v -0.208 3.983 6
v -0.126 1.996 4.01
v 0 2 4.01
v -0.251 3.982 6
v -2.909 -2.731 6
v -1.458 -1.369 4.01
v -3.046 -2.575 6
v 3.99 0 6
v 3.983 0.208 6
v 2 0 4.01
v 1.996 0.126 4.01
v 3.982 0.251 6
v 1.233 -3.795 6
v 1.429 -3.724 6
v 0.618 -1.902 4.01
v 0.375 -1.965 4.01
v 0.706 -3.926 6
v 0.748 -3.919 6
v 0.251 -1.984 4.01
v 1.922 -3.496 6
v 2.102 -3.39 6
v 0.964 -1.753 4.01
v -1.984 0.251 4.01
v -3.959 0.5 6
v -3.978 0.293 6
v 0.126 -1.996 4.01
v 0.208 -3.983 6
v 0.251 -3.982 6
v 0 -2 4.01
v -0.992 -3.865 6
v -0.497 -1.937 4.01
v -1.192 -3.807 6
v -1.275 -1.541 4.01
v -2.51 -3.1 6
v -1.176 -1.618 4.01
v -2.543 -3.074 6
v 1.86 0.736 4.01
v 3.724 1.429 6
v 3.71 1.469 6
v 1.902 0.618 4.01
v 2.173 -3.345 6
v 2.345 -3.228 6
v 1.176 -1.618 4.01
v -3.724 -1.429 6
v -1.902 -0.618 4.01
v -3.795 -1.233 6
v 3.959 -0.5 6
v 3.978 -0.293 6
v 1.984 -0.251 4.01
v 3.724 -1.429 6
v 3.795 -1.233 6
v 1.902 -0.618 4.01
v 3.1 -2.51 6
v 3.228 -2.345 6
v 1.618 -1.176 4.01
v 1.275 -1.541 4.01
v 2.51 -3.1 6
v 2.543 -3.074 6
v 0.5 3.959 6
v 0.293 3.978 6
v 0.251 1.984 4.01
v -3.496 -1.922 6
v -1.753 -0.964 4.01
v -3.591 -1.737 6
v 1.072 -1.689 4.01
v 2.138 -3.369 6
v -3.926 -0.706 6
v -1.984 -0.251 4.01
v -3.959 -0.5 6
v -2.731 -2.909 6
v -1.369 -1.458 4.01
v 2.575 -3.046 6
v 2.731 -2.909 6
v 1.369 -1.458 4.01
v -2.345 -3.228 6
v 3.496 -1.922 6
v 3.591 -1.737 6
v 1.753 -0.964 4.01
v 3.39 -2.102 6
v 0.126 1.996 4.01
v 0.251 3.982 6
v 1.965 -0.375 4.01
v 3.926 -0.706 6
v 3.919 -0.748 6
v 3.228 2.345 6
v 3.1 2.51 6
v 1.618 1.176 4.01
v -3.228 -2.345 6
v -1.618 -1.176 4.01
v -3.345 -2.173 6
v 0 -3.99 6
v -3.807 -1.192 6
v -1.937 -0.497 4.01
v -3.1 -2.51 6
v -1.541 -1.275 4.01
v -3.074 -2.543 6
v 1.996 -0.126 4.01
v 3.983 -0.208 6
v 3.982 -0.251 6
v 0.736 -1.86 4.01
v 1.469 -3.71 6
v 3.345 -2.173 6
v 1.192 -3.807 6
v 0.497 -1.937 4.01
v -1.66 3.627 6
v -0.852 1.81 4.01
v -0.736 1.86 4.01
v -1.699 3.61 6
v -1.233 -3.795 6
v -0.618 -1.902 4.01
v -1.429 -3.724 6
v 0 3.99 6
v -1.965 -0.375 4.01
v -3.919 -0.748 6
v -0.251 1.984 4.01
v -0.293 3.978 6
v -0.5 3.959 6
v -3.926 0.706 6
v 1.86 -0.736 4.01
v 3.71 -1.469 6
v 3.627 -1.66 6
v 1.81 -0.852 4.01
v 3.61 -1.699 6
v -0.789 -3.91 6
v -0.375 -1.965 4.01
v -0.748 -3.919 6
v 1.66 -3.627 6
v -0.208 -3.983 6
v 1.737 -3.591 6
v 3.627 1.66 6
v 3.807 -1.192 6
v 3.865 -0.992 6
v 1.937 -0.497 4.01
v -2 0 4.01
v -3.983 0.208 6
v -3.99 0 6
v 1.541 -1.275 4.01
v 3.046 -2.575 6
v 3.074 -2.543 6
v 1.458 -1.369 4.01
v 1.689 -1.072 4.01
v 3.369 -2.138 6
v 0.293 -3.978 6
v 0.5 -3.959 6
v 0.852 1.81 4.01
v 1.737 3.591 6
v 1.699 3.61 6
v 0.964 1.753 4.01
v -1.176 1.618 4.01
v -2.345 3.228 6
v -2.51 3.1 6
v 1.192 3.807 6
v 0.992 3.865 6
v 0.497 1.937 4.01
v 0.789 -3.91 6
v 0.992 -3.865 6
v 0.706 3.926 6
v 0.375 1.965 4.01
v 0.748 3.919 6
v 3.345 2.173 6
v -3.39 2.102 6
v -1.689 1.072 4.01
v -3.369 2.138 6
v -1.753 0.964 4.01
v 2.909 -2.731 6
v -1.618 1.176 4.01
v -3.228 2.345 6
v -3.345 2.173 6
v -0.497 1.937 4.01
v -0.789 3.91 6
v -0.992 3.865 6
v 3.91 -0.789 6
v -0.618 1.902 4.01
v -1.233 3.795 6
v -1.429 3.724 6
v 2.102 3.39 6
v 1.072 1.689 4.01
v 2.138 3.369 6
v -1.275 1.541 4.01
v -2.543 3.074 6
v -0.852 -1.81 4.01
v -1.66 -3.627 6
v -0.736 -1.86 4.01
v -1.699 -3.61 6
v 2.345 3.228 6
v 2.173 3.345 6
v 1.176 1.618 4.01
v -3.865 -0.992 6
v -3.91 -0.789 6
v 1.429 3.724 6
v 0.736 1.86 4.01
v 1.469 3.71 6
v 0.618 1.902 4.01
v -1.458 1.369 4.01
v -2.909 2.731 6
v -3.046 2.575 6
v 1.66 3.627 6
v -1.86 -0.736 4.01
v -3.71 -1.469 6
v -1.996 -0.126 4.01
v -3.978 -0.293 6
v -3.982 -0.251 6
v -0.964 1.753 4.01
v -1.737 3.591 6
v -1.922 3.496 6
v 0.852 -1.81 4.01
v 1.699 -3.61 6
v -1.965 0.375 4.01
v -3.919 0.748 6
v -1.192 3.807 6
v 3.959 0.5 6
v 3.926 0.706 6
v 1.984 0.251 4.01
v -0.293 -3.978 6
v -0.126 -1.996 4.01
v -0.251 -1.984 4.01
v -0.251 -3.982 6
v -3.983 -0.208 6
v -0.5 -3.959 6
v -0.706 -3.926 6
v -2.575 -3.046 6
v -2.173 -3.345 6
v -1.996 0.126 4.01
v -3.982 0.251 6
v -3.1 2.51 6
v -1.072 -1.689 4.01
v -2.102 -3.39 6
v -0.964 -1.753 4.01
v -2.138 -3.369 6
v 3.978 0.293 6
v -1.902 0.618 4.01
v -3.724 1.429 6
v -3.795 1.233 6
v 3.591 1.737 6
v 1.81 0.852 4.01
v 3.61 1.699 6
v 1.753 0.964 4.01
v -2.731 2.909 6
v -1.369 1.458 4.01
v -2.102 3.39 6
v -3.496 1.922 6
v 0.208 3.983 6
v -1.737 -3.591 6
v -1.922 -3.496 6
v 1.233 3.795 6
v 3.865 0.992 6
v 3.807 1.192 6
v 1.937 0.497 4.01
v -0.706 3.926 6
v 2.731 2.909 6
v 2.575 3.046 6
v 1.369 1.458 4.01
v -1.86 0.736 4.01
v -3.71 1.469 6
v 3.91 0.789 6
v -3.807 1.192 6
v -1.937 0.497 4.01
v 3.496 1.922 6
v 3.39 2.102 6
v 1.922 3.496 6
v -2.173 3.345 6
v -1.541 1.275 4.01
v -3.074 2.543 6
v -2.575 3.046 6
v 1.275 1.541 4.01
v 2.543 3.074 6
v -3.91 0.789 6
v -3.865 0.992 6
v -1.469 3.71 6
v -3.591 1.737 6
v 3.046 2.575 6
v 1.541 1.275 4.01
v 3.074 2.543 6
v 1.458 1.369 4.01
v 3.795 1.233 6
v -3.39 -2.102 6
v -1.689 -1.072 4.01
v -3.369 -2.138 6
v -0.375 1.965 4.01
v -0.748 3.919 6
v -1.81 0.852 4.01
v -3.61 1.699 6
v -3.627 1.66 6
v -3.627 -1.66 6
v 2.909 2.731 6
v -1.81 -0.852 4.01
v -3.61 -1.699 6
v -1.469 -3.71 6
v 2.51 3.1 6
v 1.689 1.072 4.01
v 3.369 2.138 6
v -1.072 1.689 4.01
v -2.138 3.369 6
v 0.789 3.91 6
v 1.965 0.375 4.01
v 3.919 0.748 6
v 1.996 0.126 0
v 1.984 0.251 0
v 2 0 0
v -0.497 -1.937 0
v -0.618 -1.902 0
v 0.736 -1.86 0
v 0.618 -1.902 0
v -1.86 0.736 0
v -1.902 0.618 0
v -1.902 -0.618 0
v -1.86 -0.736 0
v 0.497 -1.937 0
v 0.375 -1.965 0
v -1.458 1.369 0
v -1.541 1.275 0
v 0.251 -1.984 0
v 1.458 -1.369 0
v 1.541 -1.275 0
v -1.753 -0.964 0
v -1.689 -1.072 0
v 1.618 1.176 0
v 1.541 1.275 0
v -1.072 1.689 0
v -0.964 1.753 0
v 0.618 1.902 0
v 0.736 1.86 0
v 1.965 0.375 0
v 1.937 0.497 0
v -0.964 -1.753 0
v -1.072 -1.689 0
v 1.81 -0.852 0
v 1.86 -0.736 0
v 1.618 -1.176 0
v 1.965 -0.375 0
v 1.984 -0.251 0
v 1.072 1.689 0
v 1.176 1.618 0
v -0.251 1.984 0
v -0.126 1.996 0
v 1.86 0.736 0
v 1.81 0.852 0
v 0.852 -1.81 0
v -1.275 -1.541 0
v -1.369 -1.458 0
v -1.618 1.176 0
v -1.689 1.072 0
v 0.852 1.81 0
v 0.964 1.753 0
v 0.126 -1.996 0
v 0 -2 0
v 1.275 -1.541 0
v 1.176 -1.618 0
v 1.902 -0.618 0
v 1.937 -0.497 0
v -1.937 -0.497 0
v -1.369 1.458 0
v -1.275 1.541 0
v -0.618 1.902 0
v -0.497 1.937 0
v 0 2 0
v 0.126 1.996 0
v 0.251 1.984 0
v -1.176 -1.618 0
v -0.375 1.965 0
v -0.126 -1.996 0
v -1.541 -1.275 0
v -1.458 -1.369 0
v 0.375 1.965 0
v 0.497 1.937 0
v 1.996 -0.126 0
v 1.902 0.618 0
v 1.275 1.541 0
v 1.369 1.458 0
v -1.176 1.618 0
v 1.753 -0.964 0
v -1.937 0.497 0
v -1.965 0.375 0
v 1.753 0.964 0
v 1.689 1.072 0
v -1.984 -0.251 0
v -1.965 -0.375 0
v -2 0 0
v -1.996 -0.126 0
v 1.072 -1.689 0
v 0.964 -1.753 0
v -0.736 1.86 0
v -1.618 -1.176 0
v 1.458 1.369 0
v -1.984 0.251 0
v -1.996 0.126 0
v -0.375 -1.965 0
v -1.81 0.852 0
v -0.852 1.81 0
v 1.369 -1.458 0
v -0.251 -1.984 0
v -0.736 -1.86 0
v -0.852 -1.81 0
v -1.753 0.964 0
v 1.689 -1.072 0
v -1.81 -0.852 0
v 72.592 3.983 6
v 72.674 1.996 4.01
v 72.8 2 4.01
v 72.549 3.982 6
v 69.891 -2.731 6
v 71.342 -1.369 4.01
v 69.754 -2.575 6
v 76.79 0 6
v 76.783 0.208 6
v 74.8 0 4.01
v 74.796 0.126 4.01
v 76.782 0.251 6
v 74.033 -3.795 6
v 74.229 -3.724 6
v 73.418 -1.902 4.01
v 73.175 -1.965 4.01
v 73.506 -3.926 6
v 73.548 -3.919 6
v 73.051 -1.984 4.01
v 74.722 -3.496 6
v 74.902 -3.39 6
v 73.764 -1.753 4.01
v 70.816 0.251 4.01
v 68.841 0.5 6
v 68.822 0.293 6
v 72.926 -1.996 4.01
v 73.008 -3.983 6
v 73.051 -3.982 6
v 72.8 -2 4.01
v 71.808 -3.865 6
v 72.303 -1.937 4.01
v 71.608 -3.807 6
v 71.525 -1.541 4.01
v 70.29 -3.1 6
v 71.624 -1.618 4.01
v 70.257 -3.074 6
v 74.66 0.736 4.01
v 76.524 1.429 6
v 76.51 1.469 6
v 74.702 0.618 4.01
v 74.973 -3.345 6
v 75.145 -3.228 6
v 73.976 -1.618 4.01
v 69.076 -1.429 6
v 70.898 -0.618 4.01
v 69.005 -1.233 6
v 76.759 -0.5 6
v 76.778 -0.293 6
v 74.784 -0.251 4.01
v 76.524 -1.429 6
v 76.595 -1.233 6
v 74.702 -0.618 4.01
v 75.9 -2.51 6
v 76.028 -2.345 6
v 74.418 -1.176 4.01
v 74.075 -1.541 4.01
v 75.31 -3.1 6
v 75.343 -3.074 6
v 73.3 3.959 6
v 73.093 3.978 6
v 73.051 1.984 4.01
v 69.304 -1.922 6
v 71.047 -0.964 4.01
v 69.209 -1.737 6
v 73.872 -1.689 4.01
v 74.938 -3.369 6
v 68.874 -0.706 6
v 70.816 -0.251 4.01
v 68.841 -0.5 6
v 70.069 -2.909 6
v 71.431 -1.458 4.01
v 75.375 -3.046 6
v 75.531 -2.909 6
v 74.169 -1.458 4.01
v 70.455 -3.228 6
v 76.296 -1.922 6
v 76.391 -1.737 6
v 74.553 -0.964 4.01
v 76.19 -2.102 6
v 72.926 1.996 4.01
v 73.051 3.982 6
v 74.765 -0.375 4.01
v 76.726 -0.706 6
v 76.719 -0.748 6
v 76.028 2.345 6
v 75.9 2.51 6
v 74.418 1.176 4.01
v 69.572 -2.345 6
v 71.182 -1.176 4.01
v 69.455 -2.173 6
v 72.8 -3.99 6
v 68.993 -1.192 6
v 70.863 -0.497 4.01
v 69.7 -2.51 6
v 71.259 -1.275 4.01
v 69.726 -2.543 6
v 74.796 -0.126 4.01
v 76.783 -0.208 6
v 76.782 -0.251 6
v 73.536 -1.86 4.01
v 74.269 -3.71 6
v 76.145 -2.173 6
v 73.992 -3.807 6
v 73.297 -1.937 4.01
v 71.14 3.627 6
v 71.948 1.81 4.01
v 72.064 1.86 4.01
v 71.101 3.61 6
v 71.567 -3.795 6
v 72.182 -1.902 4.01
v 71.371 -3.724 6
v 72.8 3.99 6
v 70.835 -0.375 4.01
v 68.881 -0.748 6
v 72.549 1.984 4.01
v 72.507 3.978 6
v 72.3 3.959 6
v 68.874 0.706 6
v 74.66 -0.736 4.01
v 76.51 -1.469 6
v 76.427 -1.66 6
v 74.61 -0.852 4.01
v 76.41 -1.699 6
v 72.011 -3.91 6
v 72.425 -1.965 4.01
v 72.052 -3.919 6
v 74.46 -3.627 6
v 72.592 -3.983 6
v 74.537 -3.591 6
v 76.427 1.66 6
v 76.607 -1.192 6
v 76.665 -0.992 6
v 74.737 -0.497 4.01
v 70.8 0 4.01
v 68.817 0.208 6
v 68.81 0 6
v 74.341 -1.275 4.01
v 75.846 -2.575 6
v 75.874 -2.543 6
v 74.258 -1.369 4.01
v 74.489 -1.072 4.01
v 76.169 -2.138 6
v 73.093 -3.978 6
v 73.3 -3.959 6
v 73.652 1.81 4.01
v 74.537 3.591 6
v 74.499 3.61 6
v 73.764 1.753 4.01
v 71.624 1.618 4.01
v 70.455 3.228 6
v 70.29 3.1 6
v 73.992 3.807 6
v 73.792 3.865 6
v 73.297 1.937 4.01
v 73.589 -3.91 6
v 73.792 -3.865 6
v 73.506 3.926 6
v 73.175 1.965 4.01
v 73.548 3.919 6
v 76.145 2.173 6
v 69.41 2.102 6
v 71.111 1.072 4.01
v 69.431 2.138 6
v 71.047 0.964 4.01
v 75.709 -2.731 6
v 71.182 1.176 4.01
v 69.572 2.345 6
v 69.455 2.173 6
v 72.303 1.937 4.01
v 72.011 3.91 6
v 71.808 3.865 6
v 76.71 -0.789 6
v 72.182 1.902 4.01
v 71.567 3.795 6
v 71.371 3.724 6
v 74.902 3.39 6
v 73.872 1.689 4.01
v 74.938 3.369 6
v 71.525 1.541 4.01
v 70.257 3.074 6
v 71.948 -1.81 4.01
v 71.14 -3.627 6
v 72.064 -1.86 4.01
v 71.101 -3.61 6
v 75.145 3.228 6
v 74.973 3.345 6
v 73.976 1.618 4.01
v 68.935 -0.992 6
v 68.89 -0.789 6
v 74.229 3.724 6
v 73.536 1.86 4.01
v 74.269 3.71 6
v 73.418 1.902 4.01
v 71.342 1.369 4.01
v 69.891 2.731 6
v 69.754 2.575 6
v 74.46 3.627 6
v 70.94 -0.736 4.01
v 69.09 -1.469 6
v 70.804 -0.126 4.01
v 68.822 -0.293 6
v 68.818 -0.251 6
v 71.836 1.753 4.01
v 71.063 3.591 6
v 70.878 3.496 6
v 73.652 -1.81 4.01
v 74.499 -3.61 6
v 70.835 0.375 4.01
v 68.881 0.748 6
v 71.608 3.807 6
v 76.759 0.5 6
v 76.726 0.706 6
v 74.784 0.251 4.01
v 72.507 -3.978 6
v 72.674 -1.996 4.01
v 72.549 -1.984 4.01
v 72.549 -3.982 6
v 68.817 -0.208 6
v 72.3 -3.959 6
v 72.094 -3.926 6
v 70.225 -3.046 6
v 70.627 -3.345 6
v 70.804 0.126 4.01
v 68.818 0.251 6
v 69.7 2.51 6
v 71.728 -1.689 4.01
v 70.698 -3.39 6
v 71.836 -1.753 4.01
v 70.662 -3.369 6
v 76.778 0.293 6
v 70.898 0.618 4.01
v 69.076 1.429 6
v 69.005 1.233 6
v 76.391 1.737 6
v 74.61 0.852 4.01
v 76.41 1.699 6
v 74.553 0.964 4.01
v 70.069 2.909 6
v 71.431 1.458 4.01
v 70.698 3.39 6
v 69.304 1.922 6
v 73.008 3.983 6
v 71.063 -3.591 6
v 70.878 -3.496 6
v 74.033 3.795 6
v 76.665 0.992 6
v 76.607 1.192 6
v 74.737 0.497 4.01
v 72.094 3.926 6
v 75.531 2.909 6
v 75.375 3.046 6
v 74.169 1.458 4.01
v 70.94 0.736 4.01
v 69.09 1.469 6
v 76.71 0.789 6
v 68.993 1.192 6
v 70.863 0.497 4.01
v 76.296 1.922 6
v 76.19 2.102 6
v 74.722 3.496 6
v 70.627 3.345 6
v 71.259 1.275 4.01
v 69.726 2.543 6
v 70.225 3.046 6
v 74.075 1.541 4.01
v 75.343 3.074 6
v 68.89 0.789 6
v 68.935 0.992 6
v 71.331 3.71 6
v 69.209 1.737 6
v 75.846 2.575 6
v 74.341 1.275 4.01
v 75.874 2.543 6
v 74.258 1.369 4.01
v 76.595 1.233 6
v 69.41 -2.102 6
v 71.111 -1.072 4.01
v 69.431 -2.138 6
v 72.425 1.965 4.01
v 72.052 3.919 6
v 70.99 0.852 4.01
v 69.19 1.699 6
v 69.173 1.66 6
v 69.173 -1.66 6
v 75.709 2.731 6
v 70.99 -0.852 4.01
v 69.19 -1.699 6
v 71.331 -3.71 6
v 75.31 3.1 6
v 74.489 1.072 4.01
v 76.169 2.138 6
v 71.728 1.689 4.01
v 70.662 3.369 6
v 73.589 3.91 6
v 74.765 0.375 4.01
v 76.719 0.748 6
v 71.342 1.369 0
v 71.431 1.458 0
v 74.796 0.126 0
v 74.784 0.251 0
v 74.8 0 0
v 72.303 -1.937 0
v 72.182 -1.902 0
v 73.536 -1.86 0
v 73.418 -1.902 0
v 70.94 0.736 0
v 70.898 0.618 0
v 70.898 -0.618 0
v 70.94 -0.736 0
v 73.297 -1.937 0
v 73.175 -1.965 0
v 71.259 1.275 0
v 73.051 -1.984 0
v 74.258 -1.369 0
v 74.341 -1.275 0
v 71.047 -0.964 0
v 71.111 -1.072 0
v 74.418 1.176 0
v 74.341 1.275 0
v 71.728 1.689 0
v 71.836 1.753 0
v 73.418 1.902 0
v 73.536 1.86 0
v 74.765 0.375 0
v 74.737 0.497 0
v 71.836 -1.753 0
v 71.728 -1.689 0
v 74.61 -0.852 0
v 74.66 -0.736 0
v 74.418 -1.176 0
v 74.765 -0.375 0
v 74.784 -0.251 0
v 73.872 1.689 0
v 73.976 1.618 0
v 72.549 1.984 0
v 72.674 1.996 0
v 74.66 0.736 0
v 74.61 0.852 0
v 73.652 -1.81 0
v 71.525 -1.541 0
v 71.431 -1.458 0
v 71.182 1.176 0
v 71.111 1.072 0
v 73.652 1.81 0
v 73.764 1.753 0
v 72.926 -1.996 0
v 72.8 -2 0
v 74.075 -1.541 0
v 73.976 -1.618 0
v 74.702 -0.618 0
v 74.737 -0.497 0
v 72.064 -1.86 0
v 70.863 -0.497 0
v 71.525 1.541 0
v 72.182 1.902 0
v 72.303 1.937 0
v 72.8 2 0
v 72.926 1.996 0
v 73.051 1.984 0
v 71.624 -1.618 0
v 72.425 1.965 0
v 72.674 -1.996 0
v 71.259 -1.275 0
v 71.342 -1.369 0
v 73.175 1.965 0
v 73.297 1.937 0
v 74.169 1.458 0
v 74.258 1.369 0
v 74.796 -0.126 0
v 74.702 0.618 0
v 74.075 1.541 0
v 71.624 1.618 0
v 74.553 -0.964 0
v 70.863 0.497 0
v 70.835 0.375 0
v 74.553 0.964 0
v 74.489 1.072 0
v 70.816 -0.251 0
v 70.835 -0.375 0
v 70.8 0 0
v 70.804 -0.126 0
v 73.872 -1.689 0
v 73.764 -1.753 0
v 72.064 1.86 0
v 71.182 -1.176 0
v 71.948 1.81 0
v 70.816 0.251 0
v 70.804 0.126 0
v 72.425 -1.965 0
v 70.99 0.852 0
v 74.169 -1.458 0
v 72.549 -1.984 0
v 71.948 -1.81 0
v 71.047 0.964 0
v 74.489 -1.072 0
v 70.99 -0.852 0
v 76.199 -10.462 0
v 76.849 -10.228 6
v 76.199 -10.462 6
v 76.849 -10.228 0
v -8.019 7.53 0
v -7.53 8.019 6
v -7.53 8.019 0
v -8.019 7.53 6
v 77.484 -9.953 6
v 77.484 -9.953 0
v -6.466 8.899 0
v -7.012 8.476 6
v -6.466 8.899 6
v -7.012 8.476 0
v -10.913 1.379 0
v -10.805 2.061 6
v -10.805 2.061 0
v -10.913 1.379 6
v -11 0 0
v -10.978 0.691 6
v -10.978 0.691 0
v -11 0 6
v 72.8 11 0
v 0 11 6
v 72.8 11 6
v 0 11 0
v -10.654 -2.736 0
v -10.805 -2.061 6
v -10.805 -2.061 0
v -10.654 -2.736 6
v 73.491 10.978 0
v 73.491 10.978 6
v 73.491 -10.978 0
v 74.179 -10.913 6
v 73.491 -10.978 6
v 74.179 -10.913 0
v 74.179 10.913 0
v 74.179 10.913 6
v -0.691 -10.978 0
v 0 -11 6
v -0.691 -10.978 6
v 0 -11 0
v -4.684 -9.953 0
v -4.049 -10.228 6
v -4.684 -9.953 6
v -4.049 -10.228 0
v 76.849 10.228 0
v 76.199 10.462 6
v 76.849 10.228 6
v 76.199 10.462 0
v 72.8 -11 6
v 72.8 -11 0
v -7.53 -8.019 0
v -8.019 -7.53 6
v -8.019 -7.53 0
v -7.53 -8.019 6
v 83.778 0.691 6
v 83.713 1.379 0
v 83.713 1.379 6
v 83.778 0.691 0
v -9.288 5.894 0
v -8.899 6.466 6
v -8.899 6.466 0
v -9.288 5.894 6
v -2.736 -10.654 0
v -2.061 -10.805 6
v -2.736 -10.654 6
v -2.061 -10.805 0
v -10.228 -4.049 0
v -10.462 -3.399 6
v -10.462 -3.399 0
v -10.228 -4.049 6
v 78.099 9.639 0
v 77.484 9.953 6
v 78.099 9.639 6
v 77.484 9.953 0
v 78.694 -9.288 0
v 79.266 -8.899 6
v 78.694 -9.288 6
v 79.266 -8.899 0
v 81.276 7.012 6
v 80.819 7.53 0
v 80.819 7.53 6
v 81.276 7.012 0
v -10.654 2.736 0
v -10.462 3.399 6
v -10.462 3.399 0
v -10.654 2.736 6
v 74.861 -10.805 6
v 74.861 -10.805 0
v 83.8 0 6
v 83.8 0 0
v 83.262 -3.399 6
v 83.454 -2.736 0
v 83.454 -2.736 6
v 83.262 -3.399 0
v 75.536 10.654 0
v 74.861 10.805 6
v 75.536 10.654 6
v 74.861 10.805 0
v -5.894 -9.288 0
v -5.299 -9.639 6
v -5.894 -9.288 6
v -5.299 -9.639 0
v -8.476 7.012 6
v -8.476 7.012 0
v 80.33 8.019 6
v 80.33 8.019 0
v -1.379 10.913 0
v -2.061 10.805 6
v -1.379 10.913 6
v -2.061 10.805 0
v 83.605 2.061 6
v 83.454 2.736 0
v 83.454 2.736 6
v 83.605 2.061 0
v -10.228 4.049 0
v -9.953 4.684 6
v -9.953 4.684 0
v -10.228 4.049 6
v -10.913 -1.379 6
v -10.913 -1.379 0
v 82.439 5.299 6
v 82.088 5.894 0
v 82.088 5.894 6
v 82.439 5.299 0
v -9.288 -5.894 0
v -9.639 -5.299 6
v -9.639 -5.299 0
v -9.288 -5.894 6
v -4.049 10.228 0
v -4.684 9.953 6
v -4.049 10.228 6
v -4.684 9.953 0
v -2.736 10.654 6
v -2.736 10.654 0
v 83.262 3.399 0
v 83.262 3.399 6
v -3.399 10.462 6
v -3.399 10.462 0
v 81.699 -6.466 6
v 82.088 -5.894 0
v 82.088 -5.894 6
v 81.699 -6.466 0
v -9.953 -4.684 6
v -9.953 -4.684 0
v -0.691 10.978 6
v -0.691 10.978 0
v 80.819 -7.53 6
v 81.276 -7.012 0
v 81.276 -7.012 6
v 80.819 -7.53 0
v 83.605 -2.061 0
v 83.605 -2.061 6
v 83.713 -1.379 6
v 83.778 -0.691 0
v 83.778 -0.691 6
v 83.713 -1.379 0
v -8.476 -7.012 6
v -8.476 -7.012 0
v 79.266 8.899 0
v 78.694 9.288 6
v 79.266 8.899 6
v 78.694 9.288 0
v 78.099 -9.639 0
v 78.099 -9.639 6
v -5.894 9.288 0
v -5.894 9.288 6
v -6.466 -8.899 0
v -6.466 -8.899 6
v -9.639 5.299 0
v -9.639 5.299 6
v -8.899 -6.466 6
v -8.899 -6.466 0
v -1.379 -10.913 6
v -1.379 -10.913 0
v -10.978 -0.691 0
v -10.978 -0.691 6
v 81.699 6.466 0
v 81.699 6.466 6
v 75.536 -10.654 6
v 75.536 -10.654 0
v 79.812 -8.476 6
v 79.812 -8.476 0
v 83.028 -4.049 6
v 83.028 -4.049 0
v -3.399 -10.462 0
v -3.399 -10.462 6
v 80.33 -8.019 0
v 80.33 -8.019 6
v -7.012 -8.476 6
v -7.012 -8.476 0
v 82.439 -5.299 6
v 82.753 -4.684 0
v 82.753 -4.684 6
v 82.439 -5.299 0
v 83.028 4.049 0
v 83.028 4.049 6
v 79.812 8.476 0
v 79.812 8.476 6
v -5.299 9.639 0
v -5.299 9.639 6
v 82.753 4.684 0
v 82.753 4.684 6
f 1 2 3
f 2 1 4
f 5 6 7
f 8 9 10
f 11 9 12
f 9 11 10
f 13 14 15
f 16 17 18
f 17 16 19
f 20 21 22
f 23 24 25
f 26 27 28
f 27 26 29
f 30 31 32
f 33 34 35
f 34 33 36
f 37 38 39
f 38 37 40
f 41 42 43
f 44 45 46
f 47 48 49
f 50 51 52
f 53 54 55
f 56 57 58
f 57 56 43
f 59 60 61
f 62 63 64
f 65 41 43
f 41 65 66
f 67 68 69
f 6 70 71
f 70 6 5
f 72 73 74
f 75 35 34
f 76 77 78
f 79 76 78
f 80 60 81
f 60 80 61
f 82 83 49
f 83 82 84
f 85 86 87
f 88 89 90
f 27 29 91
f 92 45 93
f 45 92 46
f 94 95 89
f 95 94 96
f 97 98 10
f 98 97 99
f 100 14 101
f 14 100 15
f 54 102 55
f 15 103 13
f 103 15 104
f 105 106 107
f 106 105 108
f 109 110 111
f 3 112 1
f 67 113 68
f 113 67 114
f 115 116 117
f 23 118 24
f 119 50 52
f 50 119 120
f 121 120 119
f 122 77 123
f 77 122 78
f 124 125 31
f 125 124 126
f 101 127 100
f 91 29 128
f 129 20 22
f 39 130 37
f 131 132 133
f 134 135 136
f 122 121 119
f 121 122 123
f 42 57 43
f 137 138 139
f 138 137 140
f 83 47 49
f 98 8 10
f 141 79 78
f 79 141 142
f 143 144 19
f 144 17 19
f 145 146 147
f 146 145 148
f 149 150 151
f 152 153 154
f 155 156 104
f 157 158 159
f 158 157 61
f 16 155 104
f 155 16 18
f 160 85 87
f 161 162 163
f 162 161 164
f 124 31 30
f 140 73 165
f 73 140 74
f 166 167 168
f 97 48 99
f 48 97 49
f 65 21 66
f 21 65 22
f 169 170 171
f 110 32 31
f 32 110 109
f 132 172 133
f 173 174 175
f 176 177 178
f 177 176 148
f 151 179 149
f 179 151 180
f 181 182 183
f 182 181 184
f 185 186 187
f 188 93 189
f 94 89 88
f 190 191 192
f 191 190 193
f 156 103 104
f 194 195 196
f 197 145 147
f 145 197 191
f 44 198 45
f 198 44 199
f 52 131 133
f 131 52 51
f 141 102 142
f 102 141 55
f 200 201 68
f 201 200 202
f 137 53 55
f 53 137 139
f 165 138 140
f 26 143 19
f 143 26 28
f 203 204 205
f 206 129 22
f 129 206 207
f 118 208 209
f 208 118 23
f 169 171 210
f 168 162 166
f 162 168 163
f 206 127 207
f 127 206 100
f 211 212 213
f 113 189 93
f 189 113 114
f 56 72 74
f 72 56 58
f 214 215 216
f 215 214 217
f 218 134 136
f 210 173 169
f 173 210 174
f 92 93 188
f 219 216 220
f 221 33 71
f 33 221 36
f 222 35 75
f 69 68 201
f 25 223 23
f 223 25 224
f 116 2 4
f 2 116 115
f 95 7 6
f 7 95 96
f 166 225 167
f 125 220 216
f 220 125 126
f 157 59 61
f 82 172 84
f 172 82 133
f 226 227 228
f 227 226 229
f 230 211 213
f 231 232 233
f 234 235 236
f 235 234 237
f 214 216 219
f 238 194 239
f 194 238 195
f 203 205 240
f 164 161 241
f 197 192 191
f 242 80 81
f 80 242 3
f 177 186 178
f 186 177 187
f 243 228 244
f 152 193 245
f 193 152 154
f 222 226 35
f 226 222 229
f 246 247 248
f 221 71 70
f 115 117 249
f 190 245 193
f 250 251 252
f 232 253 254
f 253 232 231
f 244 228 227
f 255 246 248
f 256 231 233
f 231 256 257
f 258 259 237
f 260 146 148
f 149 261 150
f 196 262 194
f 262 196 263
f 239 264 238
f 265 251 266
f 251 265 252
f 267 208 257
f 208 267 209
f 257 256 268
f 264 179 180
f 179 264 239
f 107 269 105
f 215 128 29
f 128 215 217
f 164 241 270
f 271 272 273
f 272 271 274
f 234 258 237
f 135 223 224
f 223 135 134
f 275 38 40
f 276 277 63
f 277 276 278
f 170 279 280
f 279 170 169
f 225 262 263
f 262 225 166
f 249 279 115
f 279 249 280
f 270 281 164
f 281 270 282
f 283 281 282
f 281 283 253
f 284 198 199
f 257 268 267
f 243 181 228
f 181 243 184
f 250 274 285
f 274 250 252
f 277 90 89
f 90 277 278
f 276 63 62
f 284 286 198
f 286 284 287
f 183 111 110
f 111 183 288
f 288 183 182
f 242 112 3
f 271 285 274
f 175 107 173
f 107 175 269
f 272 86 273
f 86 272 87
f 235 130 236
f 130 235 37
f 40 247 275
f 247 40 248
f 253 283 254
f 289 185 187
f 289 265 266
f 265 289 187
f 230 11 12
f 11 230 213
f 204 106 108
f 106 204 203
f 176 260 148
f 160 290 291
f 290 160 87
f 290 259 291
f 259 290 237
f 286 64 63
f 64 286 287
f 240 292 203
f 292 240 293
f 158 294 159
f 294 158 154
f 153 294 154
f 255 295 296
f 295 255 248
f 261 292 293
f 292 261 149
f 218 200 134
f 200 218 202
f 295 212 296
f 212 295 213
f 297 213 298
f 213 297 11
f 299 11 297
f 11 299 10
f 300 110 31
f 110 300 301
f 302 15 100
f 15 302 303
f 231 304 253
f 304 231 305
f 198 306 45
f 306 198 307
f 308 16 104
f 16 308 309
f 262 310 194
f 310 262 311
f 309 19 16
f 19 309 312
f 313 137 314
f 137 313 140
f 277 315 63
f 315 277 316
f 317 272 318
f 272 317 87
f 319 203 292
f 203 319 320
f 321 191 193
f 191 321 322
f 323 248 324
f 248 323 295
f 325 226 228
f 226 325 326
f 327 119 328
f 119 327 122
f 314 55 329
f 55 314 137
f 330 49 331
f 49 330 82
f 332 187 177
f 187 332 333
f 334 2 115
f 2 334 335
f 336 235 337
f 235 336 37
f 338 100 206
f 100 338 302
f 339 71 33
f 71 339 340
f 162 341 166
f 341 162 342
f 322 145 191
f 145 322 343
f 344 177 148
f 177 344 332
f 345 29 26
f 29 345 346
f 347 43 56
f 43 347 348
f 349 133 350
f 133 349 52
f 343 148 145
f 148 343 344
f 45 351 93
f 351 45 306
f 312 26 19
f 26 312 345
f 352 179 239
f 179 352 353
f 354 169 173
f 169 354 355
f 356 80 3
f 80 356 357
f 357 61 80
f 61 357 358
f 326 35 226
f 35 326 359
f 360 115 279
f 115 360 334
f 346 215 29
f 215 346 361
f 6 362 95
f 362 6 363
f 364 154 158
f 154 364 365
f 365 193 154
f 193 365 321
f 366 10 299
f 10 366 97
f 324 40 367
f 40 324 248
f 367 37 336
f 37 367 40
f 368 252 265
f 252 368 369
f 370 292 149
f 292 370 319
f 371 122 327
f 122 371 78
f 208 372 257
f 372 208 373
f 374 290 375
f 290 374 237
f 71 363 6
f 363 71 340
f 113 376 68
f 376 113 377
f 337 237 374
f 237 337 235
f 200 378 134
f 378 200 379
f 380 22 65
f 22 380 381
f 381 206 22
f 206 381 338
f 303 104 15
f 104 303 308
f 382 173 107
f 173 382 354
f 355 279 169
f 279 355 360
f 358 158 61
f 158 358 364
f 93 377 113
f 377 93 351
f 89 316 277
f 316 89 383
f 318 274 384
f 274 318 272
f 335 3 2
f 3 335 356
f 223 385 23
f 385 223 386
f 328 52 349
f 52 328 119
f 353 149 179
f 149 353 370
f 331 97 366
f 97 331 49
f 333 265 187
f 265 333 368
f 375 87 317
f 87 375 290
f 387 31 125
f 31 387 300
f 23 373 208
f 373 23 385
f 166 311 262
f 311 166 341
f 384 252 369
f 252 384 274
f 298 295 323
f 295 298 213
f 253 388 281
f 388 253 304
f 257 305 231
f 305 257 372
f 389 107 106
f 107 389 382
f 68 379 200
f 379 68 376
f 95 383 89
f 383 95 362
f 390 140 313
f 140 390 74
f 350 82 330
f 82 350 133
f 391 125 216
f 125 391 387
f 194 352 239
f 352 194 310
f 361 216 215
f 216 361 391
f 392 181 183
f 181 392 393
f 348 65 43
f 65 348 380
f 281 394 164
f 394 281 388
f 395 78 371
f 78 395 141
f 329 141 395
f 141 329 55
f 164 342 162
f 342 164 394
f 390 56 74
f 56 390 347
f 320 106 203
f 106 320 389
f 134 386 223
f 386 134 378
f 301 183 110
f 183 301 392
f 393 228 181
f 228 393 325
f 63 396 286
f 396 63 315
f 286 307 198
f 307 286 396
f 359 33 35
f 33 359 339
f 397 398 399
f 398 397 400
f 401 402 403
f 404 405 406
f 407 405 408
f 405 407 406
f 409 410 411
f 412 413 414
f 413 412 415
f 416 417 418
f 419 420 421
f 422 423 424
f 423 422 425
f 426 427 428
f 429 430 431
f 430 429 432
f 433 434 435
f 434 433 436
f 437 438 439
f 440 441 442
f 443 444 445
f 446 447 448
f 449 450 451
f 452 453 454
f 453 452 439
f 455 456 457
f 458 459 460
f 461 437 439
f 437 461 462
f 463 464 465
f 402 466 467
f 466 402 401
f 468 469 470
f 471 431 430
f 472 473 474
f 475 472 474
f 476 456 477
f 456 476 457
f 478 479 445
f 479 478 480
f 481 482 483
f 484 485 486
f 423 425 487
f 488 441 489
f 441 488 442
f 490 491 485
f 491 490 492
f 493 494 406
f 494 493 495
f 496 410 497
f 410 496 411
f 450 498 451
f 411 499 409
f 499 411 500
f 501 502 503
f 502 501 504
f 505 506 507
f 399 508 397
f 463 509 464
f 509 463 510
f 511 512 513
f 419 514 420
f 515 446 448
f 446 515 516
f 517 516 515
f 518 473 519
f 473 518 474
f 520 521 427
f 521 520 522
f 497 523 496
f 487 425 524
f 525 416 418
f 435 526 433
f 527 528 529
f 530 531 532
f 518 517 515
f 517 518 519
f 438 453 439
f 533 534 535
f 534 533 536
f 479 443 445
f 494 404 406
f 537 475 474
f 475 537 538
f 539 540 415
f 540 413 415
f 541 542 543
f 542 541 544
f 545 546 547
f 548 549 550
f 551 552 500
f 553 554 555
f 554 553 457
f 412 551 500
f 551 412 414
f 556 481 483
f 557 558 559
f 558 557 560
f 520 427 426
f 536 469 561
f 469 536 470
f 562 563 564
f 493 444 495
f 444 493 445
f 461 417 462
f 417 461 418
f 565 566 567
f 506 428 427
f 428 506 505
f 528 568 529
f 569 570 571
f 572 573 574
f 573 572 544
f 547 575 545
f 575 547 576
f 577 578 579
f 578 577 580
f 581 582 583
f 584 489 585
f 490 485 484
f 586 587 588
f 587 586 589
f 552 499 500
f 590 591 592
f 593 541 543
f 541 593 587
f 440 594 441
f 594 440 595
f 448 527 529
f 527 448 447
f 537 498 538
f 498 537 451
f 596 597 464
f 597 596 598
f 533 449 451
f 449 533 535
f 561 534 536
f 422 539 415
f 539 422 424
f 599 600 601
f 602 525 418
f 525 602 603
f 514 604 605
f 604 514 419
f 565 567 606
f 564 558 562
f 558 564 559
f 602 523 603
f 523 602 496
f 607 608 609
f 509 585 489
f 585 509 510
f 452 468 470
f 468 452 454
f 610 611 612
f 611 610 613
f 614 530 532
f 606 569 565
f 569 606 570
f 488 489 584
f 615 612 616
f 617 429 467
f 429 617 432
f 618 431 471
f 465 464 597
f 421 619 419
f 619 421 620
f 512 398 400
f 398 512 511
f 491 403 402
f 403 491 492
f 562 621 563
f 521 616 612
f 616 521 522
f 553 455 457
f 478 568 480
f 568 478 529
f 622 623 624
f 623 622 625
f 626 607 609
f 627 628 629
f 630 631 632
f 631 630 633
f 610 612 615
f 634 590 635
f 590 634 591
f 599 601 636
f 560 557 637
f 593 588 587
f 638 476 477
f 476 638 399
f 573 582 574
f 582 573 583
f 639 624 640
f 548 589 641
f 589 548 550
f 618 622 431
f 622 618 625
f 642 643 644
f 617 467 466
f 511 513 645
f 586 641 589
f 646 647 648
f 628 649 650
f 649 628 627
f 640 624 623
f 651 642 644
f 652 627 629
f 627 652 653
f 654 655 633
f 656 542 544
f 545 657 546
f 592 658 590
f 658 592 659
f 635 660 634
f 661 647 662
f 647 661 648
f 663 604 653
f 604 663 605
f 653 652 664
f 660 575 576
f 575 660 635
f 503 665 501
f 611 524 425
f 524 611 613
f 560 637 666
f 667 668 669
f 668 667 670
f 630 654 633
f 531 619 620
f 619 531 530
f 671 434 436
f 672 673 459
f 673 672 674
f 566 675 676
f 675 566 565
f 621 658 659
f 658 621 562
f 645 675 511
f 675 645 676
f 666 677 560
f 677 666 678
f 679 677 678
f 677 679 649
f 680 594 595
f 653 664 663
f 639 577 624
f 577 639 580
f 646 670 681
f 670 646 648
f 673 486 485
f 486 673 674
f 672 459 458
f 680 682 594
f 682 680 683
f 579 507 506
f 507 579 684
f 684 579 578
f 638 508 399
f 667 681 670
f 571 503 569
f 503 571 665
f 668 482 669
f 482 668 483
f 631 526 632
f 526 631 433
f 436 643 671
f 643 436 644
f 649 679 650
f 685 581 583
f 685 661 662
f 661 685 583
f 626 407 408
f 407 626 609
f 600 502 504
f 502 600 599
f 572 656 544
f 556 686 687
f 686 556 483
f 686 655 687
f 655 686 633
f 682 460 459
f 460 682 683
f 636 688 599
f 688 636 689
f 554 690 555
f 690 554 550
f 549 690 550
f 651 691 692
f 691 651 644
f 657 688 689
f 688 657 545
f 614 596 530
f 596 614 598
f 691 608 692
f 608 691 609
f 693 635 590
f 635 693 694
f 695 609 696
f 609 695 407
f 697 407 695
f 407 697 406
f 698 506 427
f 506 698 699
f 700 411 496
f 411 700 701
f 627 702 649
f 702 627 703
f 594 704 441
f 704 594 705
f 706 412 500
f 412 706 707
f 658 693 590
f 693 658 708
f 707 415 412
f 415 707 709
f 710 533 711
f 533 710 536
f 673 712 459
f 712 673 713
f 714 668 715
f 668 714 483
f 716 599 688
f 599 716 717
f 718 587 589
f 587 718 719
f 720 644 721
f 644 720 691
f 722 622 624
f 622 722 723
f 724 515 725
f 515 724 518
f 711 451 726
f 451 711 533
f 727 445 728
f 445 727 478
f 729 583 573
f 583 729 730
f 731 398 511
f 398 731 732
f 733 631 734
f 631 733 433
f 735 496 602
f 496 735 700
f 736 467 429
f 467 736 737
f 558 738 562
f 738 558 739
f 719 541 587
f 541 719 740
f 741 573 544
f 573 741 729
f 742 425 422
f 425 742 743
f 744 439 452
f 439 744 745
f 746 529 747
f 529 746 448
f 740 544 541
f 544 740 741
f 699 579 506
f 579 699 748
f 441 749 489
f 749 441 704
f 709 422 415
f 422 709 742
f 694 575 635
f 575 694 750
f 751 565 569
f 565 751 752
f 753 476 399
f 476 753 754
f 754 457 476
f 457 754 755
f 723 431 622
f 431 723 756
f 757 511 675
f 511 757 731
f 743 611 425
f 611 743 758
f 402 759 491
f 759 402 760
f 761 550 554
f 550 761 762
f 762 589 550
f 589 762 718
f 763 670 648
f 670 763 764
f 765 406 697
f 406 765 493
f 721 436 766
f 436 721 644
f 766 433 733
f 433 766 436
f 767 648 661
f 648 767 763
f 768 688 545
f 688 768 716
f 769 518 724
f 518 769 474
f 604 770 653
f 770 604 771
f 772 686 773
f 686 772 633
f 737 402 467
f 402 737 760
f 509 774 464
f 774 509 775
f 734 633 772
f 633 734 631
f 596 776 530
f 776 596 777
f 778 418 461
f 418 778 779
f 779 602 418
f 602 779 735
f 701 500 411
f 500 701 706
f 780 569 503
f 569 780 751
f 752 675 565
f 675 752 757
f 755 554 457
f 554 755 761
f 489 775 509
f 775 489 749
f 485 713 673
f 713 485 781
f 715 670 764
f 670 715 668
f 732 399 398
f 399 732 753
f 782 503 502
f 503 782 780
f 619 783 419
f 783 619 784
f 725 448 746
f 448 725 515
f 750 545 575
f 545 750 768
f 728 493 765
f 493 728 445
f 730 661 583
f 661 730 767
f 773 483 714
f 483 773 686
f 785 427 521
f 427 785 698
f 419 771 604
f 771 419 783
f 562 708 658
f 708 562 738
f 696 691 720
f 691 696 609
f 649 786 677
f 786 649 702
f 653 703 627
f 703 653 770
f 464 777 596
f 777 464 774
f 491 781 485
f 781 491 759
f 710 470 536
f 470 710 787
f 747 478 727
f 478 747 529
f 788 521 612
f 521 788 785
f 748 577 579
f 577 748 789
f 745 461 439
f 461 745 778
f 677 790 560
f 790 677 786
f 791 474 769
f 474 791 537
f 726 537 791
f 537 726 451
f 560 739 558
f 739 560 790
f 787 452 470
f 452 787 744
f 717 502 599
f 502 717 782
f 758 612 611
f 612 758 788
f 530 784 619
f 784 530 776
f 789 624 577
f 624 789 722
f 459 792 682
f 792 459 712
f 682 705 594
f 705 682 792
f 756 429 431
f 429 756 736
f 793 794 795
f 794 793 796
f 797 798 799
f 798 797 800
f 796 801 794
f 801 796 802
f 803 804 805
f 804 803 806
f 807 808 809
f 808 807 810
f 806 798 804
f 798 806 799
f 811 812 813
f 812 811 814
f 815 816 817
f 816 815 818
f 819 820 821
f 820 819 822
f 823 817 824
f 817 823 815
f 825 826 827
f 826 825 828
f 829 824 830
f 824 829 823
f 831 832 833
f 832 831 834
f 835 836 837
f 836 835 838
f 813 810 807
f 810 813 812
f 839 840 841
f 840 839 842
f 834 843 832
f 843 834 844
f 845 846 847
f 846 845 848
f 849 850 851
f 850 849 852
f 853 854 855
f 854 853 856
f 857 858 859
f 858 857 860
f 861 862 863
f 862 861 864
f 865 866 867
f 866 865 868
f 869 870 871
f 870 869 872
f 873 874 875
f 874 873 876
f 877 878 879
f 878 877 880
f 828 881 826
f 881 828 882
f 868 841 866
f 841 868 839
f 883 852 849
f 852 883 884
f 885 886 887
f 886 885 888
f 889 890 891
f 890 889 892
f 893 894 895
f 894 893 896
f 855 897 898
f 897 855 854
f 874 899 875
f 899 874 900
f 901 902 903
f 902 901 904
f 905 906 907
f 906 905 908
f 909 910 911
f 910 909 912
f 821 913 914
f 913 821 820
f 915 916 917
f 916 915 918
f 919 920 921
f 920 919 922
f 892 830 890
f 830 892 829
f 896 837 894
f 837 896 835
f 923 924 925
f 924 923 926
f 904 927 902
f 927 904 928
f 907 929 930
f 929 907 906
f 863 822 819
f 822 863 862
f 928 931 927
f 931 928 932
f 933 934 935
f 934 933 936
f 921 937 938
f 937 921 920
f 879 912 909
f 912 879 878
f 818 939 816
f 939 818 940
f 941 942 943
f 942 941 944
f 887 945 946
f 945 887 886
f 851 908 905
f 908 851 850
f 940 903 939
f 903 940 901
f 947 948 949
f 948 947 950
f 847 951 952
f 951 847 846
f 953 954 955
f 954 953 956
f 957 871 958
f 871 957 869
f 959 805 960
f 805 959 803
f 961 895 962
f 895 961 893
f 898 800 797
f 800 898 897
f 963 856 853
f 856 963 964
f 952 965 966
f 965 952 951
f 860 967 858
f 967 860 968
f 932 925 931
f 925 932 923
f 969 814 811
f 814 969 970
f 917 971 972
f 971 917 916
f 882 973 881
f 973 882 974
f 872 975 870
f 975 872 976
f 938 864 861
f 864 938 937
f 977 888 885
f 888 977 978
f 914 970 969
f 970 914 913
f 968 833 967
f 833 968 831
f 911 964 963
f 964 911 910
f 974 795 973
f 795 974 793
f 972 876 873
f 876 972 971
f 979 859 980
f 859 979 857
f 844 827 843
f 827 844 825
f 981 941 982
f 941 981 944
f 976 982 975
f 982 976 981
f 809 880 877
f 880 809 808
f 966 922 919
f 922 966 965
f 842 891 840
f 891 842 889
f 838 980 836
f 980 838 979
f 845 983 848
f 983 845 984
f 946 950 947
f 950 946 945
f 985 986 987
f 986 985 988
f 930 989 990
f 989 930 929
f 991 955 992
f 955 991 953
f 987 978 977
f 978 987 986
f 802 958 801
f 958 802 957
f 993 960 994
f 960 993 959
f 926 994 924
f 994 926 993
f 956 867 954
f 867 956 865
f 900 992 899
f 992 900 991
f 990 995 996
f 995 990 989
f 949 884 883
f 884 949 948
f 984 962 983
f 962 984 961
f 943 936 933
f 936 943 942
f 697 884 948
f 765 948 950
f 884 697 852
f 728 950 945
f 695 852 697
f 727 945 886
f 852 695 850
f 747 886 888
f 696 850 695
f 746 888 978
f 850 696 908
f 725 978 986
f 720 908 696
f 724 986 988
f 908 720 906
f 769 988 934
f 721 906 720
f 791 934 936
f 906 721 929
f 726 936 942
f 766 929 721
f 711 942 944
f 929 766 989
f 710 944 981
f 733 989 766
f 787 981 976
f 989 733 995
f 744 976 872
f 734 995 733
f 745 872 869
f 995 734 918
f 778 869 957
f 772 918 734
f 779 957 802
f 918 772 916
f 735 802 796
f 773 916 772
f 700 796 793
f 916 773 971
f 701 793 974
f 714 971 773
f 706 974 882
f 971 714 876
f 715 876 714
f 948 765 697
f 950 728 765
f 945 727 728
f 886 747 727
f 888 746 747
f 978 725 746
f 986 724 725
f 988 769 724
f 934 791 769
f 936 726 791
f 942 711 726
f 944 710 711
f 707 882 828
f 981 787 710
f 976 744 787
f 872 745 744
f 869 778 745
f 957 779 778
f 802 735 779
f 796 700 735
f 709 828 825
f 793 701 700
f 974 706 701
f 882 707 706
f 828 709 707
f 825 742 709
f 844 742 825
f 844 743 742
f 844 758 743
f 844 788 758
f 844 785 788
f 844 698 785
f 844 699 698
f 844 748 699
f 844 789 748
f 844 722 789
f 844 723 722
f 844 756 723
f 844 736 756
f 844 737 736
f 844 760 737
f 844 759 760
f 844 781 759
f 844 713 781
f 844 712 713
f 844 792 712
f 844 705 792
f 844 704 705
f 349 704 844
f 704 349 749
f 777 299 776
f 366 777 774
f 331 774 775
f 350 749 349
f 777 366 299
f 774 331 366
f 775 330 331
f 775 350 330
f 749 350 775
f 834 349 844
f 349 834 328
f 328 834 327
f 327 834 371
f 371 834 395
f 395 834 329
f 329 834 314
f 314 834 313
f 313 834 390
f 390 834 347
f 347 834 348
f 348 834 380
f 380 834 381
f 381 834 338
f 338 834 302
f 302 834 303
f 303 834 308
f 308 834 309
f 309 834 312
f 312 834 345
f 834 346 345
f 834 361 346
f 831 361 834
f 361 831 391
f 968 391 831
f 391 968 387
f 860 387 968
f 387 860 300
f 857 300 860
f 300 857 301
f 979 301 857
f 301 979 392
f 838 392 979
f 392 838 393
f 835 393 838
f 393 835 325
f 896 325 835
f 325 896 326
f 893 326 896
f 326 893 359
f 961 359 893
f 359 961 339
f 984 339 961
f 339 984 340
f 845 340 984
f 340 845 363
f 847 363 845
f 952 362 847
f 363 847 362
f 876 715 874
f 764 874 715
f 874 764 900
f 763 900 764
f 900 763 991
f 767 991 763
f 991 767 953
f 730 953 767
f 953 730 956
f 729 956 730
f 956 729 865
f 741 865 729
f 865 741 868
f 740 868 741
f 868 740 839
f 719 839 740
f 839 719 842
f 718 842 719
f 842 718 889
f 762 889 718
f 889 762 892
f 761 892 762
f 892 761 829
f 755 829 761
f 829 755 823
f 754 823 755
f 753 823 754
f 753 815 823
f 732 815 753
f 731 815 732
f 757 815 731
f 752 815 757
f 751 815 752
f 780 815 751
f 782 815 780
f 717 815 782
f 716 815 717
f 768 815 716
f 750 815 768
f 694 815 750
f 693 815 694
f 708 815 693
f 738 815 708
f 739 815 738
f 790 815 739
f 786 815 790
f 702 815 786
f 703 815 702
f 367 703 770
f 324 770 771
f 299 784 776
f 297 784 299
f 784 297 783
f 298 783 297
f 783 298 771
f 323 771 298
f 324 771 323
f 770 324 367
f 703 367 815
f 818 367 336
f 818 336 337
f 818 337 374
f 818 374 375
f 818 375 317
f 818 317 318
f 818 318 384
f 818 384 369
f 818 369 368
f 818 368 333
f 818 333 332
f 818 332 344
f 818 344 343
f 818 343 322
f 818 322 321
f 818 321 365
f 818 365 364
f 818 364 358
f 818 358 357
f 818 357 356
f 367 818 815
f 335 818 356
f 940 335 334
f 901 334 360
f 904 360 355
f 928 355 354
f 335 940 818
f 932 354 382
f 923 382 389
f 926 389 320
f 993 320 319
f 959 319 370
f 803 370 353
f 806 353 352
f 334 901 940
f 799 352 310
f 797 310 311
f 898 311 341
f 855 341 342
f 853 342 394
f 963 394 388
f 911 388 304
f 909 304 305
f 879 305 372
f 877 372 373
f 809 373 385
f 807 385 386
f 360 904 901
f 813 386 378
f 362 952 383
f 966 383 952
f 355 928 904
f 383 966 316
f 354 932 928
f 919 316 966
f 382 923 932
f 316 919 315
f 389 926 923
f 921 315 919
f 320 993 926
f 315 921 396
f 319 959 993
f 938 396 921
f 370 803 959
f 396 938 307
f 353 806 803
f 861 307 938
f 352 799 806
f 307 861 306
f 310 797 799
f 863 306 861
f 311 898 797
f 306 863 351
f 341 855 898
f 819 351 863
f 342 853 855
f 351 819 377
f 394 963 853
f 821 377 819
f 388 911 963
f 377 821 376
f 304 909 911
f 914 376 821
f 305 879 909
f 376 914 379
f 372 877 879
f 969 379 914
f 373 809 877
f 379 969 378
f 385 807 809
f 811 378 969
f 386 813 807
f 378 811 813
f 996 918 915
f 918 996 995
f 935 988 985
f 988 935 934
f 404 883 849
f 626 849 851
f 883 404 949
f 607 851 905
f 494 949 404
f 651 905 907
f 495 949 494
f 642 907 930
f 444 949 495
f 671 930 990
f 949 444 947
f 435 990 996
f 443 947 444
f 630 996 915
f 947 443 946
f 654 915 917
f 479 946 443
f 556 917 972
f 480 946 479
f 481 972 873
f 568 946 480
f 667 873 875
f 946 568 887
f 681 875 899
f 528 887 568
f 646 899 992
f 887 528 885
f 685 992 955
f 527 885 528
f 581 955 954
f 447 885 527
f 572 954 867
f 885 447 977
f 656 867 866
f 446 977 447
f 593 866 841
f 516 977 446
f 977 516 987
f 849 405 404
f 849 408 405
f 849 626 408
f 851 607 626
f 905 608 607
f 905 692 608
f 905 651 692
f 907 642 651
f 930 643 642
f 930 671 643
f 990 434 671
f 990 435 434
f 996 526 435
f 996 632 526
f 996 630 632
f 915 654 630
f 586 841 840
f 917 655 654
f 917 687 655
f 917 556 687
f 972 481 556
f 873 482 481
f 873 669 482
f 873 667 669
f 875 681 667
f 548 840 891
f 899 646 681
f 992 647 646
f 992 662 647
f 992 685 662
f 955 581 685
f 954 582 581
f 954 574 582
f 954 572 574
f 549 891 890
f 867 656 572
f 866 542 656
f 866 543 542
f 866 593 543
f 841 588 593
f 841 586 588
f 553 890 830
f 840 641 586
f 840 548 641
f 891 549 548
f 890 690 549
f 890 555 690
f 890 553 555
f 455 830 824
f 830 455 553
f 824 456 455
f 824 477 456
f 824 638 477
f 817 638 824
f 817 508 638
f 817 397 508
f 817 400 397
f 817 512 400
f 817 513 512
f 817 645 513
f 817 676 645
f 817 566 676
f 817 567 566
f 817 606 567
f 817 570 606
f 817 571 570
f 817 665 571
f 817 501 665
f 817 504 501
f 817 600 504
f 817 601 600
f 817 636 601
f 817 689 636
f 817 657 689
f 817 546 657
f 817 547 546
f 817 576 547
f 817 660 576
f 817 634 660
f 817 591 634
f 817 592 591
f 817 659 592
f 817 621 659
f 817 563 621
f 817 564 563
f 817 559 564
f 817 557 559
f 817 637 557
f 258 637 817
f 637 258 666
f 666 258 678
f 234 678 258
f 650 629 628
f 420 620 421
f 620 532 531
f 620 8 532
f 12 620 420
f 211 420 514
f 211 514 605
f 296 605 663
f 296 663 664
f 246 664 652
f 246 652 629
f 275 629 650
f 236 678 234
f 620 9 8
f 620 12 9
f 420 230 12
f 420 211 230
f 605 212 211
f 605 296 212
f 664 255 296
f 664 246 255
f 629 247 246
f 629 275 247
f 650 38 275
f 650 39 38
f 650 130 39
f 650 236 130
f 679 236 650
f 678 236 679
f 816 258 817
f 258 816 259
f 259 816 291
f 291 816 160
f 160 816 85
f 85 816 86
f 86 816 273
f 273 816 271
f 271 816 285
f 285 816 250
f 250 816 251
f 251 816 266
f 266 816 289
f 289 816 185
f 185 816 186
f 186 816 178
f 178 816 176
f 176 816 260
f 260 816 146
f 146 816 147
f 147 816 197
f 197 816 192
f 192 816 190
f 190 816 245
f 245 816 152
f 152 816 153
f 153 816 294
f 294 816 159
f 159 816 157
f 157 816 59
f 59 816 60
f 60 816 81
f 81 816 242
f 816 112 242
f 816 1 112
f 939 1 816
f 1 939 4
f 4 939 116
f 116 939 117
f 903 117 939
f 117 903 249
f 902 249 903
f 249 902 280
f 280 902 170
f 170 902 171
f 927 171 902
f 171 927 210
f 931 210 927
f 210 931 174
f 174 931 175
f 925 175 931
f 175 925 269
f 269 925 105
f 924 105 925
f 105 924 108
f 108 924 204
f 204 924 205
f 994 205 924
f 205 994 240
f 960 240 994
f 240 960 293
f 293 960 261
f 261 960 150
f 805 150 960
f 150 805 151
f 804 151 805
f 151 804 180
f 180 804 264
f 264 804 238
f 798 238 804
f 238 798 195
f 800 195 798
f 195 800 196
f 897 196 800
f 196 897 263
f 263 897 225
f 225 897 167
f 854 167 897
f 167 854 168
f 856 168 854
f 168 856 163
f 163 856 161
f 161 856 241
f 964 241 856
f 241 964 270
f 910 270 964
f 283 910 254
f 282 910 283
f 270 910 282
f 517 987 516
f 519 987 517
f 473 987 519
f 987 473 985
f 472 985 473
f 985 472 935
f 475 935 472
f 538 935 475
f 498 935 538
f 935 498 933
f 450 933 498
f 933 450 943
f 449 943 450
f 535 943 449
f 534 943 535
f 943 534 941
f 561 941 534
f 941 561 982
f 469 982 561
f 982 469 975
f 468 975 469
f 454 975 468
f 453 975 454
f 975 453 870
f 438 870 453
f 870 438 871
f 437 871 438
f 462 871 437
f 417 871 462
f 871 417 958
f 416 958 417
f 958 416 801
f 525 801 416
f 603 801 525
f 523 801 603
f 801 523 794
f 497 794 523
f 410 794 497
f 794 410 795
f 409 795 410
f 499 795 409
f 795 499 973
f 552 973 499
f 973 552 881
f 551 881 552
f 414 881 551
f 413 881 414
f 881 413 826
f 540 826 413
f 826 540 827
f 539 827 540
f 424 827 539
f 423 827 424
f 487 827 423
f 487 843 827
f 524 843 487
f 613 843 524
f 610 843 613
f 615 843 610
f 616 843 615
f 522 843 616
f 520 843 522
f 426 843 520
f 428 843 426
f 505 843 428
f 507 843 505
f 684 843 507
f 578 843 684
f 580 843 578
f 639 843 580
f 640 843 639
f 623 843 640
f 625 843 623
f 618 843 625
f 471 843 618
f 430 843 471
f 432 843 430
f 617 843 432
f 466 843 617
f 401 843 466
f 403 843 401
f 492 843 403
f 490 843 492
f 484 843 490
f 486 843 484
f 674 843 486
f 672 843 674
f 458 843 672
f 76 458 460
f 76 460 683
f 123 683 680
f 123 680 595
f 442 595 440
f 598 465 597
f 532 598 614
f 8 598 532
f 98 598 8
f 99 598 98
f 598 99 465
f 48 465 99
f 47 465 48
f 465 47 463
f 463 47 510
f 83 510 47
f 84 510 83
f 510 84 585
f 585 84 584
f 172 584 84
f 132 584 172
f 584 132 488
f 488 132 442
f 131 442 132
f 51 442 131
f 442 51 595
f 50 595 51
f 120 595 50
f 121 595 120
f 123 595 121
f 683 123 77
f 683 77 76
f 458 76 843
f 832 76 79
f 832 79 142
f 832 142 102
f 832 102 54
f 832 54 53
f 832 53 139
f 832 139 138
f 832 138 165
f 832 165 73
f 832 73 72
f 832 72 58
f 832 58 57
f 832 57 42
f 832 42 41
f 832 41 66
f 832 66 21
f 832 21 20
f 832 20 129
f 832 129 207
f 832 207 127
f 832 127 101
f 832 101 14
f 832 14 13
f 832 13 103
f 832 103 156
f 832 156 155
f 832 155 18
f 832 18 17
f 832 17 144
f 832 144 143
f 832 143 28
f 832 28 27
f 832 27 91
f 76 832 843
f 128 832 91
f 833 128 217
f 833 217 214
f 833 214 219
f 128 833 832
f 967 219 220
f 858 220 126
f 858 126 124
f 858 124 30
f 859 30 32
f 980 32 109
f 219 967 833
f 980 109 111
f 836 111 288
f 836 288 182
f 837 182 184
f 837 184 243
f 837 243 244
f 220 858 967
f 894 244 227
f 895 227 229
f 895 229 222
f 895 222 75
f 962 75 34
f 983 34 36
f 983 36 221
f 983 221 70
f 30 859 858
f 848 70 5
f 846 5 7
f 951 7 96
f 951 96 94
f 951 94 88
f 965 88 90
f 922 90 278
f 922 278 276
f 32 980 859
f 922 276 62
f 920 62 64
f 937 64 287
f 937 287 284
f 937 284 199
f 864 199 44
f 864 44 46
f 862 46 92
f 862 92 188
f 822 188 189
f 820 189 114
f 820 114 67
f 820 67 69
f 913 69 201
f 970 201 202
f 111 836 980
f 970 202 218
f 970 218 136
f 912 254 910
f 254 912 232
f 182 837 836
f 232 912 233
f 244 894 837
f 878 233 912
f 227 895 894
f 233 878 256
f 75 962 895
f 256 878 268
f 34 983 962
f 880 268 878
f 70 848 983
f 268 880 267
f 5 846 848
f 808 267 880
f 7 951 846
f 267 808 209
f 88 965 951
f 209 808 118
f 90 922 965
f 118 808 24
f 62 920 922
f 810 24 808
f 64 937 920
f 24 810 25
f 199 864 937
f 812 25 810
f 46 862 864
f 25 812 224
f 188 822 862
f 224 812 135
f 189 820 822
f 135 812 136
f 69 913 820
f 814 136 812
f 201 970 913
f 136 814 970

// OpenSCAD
difference() {
  hull() {
    cylinder(6, 11, 11, $fn=100);
    translate([72.8, 0, 0]) cylinder(6, 11, 11, $fn=100);
  }
  
  union() {
    translate([0, 0, 4.01]) cylinder(3, 2, 5, $fn=100);
    translate([0, 0, -1]) cylinder(6, 2, 2, $fn=100);
  }
  
  translate([72.8, 0, 0]) union() {
    translate([0, 0, 4.01]) cylinder(3, 2, 5, $fn=100);
    translate([0, 0, -1]) cylinder(6, 2, 2, $fn=100);
  }
}
